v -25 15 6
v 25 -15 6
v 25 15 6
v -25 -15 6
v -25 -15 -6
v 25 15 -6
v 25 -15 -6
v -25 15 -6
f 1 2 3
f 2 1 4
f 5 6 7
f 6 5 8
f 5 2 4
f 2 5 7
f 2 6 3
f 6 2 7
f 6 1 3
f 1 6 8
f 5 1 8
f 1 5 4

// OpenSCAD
// Parameters for the rectangular plate
plate_length = 50;  // Length of the plate
plate_width = 30;   // Width of the plate
plate_thickness = 12; // Total thickness of the plate

// Function to create a single rectangular plate
module rectangular_plate() {
    cube([plate_length, plate_width, plate_thickness], center = true);
}

// Create the single solid rectangular plate
rectangular_plate();
